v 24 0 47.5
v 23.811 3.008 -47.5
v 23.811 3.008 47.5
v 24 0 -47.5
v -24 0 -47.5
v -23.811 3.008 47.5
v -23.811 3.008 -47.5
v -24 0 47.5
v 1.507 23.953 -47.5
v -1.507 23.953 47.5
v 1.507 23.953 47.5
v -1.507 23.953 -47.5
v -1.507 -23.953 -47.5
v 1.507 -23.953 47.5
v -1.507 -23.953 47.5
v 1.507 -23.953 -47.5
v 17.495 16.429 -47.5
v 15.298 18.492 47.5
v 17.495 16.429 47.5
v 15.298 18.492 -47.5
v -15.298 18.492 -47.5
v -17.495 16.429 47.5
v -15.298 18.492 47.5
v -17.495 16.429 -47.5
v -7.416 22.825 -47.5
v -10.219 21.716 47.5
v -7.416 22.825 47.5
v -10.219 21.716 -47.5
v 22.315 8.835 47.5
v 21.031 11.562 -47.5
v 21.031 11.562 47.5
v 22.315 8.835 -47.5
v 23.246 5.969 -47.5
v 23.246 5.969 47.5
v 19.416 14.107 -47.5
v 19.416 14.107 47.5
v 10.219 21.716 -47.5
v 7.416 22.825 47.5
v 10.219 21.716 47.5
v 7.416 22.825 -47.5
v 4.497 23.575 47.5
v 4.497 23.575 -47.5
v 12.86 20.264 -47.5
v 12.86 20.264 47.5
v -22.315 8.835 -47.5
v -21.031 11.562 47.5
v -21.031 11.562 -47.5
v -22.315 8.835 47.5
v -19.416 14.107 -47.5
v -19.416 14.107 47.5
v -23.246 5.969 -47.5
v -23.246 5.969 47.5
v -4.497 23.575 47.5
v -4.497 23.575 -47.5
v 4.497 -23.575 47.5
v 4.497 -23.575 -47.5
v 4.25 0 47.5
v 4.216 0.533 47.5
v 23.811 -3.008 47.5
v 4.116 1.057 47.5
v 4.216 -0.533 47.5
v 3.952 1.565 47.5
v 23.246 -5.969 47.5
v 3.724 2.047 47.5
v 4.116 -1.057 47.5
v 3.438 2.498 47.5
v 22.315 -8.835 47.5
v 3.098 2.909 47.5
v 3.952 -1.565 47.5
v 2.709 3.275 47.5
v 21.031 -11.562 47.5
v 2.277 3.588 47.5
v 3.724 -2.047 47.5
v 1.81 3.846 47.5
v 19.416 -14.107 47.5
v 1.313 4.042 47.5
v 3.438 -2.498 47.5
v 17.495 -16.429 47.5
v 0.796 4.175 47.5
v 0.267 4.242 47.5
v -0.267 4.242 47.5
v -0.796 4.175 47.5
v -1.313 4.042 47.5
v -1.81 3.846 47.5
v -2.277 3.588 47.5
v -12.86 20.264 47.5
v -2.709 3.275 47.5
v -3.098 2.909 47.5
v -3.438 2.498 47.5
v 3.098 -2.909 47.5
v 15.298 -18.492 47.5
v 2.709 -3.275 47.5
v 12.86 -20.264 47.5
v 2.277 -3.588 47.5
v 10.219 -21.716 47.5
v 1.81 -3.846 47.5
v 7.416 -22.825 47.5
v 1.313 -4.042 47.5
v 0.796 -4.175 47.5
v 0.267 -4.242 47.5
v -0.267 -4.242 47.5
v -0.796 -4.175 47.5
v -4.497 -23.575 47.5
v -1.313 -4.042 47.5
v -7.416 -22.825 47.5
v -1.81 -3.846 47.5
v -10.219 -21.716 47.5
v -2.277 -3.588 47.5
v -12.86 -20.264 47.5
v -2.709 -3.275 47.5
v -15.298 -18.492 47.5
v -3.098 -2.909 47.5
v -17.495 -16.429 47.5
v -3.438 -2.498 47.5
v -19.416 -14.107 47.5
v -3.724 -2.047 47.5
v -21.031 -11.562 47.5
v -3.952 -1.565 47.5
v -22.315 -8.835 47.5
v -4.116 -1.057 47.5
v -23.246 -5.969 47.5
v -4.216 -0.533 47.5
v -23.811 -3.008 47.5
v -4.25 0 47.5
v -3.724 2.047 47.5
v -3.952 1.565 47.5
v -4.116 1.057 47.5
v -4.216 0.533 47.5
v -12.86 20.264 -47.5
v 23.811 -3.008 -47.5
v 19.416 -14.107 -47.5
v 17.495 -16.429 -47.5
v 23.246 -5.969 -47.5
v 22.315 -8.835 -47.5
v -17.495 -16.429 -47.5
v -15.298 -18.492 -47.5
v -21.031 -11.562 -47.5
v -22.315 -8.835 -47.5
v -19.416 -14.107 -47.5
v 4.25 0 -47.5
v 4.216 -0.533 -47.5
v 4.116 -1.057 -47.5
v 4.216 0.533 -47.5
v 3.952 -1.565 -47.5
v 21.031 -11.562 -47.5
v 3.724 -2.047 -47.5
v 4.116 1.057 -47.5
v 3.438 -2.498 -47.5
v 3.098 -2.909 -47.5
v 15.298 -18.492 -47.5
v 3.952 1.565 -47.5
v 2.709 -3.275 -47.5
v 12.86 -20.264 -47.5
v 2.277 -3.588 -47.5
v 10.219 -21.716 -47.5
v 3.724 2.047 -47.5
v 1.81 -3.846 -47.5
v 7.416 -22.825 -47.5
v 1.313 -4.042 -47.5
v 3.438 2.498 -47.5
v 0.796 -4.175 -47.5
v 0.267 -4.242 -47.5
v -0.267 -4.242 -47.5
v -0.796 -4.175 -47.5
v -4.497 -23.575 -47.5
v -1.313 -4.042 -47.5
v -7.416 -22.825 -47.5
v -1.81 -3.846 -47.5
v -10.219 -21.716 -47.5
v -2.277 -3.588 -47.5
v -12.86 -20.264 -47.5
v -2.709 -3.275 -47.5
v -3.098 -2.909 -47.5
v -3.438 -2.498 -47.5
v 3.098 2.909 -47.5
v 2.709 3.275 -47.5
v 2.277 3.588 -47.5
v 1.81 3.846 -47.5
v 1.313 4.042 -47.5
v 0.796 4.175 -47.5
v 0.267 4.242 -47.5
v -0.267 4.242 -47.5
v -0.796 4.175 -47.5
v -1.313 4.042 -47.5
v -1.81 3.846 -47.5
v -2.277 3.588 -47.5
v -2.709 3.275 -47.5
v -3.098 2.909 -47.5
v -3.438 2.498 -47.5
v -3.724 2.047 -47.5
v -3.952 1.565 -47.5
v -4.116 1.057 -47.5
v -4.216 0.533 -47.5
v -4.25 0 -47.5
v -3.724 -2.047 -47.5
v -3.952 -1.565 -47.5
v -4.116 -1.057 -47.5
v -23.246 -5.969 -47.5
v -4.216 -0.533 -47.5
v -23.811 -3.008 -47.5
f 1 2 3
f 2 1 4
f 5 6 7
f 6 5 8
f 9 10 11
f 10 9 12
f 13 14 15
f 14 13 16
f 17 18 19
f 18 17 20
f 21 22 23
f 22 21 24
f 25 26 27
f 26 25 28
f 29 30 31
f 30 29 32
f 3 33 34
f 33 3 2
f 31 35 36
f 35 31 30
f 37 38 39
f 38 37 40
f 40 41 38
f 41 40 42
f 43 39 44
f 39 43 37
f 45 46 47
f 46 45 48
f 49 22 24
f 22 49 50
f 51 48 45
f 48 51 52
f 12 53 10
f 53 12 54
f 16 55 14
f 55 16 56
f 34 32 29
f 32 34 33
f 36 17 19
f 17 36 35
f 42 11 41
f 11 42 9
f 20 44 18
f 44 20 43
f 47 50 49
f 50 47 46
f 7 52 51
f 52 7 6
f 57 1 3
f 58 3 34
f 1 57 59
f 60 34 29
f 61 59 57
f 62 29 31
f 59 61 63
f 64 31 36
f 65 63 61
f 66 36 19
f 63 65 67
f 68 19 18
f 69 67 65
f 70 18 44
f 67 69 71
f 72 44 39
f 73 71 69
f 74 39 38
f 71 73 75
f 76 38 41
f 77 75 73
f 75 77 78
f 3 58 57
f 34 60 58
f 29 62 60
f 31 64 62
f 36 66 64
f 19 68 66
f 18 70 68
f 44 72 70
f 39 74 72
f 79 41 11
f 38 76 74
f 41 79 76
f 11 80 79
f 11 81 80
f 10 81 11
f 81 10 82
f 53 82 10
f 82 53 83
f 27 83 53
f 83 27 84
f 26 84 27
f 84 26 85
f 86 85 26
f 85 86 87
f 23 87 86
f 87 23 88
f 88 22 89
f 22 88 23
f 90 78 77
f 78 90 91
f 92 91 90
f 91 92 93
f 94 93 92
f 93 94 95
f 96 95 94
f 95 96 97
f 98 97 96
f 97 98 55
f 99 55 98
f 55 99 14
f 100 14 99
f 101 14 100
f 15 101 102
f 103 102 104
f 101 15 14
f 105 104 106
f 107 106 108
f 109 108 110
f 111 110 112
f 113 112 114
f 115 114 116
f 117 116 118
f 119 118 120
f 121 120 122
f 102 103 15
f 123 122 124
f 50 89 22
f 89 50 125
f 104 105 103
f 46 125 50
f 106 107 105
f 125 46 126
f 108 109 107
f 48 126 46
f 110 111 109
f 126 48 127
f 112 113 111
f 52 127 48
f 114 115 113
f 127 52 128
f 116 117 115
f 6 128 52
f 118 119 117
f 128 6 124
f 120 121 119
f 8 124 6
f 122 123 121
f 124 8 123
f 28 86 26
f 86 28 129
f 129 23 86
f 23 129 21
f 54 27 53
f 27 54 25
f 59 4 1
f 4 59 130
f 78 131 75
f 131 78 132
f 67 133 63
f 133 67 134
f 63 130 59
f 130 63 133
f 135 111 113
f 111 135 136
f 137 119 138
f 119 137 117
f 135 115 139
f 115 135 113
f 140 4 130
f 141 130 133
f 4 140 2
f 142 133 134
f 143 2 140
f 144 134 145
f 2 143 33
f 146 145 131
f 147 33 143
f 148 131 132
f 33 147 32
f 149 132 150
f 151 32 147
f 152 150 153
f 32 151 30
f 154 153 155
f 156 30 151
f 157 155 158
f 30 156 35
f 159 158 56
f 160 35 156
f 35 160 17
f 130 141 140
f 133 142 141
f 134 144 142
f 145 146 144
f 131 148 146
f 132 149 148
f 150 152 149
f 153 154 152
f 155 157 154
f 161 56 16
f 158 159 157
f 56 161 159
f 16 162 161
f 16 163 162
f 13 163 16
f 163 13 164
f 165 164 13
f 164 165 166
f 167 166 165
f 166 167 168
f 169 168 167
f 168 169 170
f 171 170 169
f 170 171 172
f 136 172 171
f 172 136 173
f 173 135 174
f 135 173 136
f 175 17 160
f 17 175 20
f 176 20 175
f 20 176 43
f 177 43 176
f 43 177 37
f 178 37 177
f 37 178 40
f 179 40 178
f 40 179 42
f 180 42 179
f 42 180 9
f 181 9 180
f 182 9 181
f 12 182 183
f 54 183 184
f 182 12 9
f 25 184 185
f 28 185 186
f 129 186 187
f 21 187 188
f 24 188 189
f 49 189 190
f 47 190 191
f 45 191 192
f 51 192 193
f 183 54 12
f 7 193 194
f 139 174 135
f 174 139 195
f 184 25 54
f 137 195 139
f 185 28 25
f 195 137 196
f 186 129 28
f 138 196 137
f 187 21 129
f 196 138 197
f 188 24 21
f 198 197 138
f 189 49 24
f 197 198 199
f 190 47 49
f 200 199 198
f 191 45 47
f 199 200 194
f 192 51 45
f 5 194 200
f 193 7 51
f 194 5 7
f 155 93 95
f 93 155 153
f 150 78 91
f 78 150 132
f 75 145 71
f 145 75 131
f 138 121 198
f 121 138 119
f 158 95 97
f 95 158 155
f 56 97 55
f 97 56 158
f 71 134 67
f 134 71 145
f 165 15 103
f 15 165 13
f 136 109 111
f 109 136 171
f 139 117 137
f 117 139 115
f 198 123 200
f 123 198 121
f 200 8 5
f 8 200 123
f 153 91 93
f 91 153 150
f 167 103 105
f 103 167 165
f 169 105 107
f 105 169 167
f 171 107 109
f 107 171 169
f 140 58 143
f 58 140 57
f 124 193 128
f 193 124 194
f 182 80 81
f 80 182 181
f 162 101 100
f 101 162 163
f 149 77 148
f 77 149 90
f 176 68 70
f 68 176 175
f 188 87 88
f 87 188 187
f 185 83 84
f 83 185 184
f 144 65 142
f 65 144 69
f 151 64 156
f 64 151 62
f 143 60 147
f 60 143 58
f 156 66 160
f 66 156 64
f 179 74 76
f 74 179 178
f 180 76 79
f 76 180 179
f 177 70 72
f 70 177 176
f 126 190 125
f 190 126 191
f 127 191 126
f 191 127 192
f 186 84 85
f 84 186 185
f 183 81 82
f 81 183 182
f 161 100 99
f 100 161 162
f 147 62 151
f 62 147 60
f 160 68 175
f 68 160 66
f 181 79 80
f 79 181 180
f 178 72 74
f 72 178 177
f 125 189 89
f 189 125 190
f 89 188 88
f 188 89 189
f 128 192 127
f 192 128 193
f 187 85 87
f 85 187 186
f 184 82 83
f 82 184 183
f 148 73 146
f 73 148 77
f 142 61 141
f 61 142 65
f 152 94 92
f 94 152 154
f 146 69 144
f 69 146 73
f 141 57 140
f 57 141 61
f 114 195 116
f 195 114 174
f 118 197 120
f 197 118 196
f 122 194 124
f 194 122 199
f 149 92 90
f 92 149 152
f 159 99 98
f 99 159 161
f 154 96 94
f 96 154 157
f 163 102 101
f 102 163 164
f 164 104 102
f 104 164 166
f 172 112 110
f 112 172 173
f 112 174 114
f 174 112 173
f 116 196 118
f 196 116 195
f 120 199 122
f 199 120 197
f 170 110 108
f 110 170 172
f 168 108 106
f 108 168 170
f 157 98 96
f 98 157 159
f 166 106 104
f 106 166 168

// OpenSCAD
$fn = 50;


difference() {
	union() {
		translate(v = [0, 0, -47.5000000000]) {
			cylinder(h = 95, r = 24.0000000000);
		}
	}
	union() {
		translate(v = [0, 0, -100.0000000000]) {
			cylinder(h = 200, r = 4.2500000000);
		}
	}
}
